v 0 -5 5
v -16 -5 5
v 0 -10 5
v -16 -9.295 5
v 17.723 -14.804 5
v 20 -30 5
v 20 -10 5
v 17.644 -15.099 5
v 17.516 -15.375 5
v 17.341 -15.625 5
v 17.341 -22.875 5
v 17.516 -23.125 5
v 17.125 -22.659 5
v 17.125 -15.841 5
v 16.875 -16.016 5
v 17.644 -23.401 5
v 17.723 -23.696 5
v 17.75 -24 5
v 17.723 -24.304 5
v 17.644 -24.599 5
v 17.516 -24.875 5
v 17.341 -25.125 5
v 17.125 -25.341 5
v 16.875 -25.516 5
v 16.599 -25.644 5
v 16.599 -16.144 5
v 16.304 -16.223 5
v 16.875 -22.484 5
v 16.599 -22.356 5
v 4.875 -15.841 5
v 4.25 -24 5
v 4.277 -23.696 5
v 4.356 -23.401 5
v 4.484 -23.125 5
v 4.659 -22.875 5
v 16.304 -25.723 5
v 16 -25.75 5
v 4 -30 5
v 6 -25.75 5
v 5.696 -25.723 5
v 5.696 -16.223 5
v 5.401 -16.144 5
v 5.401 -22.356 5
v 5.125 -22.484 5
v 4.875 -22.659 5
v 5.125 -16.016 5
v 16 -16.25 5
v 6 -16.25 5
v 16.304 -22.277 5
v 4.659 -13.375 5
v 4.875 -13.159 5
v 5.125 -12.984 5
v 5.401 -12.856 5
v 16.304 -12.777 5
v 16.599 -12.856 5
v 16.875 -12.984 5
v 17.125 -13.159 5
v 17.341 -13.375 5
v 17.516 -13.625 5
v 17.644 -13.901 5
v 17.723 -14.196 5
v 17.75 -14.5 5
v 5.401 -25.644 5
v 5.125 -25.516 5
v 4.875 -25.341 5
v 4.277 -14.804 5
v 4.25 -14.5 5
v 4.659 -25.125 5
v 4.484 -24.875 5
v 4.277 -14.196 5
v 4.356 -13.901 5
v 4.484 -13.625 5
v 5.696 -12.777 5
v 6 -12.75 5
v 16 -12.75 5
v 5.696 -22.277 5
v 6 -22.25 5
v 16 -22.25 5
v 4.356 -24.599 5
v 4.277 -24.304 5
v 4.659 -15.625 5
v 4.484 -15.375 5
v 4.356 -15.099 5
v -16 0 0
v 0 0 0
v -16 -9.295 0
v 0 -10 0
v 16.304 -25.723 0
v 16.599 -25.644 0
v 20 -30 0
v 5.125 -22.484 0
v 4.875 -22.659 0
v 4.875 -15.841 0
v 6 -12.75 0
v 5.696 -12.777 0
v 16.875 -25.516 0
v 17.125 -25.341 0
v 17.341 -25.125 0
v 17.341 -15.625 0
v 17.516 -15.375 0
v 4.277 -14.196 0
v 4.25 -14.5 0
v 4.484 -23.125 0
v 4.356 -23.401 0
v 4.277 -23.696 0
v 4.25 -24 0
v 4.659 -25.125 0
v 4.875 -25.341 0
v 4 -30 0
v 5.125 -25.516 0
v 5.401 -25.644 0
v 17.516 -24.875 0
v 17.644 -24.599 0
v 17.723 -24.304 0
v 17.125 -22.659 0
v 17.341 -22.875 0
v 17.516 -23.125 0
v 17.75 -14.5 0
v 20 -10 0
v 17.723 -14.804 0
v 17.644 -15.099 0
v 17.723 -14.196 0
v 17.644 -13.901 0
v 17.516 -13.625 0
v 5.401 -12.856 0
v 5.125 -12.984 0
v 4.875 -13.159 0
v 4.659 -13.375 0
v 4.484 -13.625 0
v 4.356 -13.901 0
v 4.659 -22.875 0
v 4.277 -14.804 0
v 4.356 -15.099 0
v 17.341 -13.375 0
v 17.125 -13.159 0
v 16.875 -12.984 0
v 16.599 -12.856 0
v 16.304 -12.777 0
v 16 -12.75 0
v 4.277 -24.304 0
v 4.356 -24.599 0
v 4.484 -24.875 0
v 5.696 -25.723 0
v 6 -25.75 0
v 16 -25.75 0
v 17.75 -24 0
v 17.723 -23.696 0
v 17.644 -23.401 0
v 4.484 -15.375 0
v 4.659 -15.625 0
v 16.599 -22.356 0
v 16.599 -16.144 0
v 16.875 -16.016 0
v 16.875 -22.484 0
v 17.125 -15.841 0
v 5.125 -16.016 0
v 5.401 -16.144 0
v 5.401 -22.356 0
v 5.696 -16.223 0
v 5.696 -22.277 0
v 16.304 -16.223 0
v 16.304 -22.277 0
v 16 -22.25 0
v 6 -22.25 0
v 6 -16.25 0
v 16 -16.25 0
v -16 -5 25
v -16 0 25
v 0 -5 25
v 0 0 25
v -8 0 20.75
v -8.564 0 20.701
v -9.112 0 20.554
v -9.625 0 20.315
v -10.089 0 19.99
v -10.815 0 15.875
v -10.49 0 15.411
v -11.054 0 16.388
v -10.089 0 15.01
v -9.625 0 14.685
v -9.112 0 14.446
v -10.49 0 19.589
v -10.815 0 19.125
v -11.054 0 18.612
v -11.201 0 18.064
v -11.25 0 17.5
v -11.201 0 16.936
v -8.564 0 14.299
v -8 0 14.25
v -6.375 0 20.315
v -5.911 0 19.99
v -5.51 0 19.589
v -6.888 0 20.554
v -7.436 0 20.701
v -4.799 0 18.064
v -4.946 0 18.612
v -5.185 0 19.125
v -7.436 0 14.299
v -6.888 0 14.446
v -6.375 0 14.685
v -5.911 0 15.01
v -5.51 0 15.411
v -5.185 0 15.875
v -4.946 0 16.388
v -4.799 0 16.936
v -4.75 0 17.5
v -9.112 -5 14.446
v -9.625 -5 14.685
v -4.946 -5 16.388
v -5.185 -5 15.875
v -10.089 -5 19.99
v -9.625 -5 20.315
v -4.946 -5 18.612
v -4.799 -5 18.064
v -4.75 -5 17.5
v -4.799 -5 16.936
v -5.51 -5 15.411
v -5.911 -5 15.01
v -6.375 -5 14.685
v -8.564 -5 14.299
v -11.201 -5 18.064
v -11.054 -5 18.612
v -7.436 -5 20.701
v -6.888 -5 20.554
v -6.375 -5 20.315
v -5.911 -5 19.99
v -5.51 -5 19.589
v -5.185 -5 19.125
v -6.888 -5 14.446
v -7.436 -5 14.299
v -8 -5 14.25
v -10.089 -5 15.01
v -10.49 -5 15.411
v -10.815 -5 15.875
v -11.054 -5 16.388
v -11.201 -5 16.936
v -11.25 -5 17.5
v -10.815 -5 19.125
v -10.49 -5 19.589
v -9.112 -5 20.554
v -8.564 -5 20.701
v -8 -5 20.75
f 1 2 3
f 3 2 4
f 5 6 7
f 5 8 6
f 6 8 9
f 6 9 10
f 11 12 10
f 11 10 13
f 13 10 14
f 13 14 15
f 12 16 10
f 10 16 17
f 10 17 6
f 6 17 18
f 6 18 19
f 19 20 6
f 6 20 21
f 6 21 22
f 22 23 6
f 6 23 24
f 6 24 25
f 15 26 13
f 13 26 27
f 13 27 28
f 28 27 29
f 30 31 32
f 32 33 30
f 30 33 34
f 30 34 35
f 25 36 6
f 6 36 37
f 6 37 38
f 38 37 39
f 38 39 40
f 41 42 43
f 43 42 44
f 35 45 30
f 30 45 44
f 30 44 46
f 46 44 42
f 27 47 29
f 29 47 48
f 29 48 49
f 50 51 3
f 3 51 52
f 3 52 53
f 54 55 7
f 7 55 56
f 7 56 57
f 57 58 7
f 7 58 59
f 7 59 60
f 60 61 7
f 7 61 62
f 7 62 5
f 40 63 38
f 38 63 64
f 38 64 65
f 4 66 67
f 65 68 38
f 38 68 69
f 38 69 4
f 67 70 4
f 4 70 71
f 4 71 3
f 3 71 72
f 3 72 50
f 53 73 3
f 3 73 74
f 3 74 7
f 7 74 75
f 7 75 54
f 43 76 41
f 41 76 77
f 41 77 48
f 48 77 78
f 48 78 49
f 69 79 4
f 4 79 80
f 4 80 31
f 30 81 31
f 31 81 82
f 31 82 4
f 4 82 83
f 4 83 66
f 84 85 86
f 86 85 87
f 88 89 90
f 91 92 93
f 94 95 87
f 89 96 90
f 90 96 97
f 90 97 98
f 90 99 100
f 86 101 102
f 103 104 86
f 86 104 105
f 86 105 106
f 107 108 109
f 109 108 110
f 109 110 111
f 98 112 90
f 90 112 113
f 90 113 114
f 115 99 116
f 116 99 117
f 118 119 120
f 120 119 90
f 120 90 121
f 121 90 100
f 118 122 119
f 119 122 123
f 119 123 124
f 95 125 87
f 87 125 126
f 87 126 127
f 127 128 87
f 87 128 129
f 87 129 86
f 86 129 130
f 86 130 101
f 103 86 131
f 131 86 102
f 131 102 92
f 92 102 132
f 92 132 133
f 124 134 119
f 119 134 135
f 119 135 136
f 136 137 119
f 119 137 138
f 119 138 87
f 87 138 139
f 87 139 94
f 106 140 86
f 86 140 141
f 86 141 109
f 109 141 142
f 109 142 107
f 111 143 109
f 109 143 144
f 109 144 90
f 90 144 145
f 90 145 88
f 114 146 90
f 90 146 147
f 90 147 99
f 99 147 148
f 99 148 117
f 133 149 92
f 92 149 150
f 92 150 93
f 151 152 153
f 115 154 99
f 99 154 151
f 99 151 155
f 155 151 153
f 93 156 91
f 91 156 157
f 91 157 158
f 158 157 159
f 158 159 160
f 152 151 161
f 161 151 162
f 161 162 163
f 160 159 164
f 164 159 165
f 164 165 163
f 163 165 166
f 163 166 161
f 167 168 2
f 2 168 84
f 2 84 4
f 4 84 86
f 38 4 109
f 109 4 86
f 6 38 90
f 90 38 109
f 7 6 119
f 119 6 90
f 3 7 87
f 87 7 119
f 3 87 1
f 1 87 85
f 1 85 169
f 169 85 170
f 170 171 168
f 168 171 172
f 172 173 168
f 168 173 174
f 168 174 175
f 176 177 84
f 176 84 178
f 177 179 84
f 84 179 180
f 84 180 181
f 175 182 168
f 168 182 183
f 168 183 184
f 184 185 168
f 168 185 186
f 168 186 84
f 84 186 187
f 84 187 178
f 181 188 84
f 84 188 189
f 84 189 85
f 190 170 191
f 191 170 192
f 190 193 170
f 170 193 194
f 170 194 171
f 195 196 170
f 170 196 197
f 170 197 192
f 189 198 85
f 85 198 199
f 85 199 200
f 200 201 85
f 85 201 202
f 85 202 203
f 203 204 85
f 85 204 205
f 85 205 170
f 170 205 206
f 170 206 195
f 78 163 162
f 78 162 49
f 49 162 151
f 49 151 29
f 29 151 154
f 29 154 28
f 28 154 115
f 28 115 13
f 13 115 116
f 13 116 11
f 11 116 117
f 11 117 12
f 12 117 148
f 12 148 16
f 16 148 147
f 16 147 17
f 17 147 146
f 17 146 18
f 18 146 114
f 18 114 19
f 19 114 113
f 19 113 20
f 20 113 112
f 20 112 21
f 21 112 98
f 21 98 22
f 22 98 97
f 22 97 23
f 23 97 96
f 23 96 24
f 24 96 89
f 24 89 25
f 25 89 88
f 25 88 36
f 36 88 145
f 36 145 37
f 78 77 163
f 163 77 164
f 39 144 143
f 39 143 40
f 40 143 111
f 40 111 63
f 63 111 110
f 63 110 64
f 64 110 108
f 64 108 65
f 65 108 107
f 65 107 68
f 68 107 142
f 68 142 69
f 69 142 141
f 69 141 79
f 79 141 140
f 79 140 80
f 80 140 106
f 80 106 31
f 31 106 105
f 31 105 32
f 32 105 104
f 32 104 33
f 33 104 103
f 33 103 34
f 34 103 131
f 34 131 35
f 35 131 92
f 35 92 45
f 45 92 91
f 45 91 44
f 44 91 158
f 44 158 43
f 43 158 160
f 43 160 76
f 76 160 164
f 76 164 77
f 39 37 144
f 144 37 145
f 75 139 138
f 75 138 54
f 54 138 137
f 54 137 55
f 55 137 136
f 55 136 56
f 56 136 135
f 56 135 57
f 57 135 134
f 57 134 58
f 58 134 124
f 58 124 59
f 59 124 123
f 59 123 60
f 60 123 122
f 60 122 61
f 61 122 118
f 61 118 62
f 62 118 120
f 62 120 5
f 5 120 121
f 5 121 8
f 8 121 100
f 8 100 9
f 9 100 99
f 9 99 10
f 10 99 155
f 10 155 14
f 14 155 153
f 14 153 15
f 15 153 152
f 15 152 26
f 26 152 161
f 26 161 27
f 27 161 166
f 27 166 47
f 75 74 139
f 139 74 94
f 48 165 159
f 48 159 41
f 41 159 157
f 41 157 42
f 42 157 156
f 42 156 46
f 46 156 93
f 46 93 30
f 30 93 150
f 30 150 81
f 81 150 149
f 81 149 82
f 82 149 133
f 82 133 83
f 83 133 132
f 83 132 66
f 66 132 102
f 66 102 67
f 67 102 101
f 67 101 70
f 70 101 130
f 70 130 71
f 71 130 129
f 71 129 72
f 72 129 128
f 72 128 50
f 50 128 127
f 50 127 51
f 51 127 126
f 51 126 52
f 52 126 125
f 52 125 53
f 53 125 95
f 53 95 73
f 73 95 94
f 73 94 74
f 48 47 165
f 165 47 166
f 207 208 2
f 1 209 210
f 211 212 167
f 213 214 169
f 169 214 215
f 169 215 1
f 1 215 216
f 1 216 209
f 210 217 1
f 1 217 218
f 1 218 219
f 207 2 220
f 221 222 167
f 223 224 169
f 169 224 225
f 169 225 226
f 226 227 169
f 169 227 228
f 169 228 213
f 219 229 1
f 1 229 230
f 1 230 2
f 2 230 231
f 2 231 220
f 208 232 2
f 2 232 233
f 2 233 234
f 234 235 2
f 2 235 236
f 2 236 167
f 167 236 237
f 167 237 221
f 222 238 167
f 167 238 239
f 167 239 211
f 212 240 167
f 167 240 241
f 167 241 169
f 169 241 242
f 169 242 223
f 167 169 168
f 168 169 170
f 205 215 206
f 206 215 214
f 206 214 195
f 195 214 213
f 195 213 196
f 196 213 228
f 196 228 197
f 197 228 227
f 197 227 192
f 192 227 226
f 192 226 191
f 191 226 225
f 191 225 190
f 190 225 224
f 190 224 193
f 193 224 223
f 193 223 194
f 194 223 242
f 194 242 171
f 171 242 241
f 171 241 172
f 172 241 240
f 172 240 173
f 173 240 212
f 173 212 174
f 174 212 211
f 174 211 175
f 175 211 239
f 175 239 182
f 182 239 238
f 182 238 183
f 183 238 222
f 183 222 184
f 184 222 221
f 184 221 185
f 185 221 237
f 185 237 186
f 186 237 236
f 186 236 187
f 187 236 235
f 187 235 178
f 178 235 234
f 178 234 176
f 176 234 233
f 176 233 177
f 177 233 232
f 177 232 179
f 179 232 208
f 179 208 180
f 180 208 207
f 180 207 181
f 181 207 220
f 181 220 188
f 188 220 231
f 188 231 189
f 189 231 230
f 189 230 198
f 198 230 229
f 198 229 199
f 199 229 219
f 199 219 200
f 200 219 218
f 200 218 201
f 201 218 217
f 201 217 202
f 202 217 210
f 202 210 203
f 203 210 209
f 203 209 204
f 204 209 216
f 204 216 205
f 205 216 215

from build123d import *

# Parameters (mm, degrees)
ESTRUSIONE_ESTRUSIONE1_DEPTH = 5
SCHIZZO2_W                   = 16
SCHIZZO2_H                   = 5
ESTRUSIONE_ESTRUSIONE2_DEPTH = 20
TAGLIO_ESTRUSIONE1_REACH     = 42.62
SCHIZZO3_R                   = 3.25


with BuildPart() as part:
    # Schizzo1 → Estrusione-Estrusione1 (new body)
    with BuildSketch(Plane.XY):
        Polygon((-16, 0), (0, 0), (0, -10), (20, -10), (20, -30), (4, -30), (-16, -9.295201316), align=None)
        with BuildLine():
            Line((16, -22.25), (6, -22.25))
            ThreePointArc((6, -22.25), (4.25, -24), (6, -25.75))
            Line((6, -25.75), (16, -25.75))
            ThreePointArc((16, -25.75), (17.75, -24), (16, -22.25))
        make_face(mode=Mode.SUBTRACT)
        with BuildLine():
            Line((16, -12.75), (6, -12.75))
            ThreePointArc((6, -12.75), (4.25, -14.5), (6, -16.25))
            Line((6, -16.25), (16, -16.25))
            ThreePointArc((16, -16.25), (17.75, -14.5), (16, -12.75))
        make_face(mode=Mode.SUBTRACT)
    extrude(amount=ESTRUSIONE_ESTRUSIONE1_DEPTH)

    # Schizzo2 → Estrusione-Estrusione2 (add)
    with BuildSketch(Plane.XY.offset(5)):
        with Locations((-8, -2.5)):
            Rectangle(SCHIZZO2_W, SCHIZZO2_H)
    extrude(amount=ESTRUSIONE_ESTRUSIONE2_DEPTH)

    # Schizzo3 → Taglio-Estrusione1 (cut, up to next)
    with BuildSketch(Plane.XZ.offset(5), mode=Mode.PRIVATE) as taglio_estrusione1_sk1:
        with Locations((-8, 17.5)):
            Circle(SCHIZZO3_R)
    taglio_estrusione1_tool1 = extrude(taglio_estrusione1_sk1.sketch, amount=-TAGLIO_ESTRUSIONE1_REACH, mode=Mode.PRIVATE) & part.part
    add(taglio_estrusione1_tool1.solids().sort_by_distance((-8, -5, 17.5))[0], mode=Mode.SUBTRACT)


solid = part.part
